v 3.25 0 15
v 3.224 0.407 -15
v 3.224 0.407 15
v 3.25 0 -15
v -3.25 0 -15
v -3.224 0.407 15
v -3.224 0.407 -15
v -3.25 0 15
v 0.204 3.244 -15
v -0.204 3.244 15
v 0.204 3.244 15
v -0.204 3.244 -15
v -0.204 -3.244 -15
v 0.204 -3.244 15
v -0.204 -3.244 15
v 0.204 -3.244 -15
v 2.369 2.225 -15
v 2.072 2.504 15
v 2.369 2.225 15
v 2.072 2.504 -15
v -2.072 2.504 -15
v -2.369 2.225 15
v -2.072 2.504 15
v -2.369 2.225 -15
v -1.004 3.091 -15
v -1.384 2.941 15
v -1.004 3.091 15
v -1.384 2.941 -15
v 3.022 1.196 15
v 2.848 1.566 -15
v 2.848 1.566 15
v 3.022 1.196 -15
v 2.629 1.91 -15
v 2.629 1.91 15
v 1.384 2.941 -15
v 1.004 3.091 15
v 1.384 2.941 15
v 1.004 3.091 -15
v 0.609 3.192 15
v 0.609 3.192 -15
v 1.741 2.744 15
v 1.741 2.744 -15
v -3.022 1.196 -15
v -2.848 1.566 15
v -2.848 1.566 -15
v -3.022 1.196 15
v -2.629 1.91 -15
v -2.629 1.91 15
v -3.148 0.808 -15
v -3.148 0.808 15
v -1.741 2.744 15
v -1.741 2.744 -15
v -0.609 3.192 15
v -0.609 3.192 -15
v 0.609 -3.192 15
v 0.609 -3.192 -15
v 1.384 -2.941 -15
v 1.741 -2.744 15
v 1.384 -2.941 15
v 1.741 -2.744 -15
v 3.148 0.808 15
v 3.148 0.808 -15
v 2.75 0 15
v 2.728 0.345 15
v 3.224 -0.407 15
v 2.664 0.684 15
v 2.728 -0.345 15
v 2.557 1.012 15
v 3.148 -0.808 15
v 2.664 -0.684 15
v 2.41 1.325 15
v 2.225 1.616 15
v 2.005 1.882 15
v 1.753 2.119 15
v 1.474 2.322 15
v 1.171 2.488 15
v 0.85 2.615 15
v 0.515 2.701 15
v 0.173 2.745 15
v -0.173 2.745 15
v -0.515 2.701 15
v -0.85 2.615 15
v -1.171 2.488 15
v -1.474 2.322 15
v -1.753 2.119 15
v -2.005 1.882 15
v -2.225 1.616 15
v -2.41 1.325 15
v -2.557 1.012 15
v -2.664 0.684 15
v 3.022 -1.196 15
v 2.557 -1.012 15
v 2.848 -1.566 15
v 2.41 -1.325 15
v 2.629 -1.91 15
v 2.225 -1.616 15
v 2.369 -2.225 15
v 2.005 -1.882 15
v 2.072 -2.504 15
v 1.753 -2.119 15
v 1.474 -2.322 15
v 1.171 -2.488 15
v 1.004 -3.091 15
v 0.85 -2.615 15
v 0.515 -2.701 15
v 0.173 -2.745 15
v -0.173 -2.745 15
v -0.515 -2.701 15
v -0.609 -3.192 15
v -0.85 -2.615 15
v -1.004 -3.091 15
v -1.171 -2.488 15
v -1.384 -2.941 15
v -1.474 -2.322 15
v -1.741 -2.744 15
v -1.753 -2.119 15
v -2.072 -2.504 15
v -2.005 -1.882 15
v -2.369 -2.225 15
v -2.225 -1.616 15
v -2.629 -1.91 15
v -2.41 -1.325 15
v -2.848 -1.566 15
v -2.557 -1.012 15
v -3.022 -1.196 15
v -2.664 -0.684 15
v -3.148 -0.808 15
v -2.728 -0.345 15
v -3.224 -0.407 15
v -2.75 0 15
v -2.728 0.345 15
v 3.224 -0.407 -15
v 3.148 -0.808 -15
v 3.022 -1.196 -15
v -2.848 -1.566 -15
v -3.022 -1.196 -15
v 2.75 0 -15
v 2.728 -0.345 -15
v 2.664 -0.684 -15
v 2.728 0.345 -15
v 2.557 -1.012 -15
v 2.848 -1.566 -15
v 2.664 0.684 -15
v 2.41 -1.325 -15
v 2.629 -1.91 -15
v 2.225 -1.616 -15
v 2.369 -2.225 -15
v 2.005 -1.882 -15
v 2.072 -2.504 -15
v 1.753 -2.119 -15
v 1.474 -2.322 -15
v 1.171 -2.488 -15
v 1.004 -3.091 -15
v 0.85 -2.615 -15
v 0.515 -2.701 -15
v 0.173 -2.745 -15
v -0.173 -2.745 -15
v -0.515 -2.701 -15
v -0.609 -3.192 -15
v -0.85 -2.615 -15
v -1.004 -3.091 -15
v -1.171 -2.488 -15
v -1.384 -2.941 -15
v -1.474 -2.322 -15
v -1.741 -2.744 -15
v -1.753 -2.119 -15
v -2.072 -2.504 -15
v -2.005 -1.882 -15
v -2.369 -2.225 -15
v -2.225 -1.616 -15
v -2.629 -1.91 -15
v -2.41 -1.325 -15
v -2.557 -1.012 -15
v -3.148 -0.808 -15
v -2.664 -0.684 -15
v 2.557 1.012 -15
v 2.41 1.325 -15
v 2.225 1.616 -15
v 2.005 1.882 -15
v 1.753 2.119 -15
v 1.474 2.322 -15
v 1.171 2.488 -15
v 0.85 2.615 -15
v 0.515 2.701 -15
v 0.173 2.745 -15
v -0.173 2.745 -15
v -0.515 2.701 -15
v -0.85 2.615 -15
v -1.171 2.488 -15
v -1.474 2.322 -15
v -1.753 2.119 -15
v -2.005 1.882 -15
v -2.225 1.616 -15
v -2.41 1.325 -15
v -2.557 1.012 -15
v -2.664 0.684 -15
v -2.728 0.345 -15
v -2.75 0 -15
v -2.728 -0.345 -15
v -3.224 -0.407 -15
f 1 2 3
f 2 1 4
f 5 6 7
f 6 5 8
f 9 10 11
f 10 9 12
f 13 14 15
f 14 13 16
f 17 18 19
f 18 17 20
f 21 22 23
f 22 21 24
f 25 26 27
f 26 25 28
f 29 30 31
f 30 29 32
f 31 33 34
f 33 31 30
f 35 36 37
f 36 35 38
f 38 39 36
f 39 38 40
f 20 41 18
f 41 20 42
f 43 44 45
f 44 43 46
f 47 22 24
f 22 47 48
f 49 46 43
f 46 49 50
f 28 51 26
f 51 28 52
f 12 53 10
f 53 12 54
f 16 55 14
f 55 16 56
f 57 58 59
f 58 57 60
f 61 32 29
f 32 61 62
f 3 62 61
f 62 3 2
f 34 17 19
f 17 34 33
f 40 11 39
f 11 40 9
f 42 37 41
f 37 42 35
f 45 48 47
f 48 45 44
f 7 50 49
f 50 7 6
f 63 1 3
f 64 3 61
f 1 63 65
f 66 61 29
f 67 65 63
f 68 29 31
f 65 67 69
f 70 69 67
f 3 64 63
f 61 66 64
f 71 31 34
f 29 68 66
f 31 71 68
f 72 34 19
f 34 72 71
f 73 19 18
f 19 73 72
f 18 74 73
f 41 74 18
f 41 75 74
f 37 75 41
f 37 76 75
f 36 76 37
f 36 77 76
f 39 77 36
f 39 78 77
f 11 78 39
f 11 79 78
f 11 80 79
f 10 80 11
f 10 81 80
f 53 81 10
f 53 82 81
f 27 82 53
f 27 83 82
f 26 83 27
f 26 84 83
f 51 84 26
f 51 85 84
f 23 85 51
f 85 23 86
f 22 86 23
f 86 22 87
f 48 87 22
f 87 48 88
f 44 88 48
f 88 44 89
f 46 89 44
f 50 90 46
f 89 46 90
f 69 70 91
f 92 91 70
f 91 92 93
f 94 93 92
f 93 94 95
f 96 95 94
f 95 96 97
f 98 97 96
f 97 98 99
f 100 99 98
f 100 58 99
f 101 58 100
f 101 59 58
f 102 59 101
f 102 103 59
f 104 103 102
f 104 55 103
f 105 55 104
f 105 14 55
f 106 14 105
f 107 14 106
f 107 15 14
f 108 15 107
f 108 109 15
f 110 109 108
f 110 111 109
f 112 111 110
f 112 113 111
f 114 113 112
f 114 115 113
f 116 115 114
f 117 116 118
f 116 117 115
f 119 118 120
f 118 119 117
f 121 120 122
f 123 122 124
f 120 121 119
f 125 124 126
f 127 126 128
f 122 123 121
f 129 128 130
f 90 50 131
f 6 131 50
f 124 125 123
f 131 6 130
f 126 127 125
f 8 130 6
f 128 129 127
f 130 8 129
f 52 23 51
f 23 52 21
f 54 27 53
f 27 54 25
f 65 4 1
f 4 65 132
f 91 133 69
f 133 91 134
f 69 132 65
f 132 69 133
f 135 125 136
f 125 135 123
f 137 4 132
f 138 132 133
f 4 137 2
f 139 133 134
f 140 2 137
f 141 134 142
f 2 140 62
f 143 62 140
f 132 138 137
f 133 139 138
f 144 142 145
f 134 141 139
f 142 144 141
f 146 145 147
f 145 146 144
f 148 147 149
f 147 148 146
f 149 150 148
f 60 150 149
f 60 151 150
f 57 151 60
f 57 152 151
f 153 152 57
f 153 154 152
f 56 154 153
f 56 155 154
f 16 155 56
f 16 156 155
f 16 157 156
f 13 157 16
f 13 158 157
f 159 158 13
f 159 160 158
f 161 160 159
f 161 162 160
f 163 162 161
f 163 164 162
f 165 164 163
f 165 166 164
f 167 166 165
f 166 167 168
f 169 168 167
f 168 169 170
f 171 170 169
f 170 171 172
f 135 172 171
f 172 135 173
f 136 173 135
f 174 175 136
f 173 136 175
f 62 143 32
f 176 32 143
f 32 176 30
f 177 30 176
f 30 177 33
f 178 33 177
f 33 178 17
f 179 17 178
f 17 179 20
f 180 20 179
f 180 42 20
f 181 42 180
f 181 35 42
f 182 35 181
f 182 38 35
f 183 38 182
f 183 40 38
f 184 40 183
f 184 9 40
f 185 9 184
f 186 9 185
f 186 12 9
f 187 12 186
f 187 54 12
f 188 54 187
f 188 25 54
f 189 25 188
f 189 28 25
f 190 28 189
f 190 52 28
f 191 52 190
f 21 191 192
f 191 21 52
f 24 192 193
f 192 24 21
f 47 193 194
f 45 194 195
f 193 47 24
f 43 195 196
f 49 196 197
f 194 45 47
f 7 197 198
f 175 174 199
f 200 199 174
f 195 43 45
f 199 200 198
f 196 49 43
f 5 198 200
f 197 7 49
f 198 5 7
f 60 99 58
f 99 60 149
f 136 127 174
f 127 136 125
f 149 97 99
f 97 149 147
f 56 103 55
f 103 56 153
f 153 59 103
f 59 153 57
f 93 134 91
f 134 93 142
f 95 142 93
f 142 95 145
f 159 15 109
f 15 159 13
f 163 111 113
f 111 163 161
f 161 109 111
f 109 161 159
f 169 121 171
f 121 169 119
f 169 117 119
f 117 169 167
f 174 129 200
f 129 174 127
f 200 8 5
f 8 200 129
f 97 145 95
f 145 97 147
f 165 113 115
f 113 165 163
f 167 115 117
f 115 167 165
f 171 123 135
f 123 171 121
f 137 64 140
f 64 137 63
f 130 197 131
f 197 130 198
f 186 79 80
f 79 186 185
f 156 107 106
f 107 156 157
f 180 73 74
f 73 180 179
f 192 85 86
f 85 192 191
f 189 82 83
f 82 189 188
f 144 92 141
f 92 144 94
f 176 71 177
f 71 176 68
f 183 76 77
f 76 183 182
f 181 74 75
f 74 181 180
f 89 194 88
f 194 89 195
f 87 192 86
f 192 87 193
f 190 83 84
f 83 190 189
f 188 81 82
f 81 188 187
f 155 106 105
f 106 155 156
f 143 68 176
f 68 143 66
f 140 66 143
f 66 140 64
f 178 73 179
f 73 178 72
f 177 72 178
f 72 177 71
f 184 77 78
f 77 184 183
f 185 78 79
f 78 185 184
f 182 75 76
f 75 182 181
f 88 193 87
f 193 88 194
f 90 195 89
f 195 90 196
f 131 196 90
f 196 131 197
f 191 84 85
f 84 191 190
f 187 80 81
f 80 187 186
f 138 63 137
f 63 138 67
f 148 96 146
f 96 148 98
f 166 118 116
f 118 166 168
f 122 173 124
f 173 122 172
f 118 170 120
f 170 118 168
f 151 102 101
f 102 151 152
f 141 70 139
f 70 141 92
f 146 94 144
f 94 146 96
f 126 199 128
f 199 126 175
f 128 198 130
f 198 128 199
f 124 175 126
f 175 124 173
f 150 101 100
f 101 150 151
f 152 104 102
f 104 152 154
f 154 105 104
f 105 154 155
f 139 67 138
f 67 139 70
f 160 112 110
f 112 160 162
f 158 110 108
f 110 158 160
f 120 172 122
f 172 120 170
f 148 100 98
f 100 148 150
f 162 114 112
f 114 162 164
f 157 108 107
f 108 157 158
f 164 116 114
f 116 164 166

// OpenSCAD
$fn = 50;


difference() {
	union() {
		translate(v = [0, 0, -15.0000000000]) {
			cylinder(h = 30, r = 3.2500000000);
		}
	}
	union() {
		translate(v = [0, 0, -100.0000000000]) {
			cylinder(h = 200, r = 2.7500000000);
		}
	}
}
